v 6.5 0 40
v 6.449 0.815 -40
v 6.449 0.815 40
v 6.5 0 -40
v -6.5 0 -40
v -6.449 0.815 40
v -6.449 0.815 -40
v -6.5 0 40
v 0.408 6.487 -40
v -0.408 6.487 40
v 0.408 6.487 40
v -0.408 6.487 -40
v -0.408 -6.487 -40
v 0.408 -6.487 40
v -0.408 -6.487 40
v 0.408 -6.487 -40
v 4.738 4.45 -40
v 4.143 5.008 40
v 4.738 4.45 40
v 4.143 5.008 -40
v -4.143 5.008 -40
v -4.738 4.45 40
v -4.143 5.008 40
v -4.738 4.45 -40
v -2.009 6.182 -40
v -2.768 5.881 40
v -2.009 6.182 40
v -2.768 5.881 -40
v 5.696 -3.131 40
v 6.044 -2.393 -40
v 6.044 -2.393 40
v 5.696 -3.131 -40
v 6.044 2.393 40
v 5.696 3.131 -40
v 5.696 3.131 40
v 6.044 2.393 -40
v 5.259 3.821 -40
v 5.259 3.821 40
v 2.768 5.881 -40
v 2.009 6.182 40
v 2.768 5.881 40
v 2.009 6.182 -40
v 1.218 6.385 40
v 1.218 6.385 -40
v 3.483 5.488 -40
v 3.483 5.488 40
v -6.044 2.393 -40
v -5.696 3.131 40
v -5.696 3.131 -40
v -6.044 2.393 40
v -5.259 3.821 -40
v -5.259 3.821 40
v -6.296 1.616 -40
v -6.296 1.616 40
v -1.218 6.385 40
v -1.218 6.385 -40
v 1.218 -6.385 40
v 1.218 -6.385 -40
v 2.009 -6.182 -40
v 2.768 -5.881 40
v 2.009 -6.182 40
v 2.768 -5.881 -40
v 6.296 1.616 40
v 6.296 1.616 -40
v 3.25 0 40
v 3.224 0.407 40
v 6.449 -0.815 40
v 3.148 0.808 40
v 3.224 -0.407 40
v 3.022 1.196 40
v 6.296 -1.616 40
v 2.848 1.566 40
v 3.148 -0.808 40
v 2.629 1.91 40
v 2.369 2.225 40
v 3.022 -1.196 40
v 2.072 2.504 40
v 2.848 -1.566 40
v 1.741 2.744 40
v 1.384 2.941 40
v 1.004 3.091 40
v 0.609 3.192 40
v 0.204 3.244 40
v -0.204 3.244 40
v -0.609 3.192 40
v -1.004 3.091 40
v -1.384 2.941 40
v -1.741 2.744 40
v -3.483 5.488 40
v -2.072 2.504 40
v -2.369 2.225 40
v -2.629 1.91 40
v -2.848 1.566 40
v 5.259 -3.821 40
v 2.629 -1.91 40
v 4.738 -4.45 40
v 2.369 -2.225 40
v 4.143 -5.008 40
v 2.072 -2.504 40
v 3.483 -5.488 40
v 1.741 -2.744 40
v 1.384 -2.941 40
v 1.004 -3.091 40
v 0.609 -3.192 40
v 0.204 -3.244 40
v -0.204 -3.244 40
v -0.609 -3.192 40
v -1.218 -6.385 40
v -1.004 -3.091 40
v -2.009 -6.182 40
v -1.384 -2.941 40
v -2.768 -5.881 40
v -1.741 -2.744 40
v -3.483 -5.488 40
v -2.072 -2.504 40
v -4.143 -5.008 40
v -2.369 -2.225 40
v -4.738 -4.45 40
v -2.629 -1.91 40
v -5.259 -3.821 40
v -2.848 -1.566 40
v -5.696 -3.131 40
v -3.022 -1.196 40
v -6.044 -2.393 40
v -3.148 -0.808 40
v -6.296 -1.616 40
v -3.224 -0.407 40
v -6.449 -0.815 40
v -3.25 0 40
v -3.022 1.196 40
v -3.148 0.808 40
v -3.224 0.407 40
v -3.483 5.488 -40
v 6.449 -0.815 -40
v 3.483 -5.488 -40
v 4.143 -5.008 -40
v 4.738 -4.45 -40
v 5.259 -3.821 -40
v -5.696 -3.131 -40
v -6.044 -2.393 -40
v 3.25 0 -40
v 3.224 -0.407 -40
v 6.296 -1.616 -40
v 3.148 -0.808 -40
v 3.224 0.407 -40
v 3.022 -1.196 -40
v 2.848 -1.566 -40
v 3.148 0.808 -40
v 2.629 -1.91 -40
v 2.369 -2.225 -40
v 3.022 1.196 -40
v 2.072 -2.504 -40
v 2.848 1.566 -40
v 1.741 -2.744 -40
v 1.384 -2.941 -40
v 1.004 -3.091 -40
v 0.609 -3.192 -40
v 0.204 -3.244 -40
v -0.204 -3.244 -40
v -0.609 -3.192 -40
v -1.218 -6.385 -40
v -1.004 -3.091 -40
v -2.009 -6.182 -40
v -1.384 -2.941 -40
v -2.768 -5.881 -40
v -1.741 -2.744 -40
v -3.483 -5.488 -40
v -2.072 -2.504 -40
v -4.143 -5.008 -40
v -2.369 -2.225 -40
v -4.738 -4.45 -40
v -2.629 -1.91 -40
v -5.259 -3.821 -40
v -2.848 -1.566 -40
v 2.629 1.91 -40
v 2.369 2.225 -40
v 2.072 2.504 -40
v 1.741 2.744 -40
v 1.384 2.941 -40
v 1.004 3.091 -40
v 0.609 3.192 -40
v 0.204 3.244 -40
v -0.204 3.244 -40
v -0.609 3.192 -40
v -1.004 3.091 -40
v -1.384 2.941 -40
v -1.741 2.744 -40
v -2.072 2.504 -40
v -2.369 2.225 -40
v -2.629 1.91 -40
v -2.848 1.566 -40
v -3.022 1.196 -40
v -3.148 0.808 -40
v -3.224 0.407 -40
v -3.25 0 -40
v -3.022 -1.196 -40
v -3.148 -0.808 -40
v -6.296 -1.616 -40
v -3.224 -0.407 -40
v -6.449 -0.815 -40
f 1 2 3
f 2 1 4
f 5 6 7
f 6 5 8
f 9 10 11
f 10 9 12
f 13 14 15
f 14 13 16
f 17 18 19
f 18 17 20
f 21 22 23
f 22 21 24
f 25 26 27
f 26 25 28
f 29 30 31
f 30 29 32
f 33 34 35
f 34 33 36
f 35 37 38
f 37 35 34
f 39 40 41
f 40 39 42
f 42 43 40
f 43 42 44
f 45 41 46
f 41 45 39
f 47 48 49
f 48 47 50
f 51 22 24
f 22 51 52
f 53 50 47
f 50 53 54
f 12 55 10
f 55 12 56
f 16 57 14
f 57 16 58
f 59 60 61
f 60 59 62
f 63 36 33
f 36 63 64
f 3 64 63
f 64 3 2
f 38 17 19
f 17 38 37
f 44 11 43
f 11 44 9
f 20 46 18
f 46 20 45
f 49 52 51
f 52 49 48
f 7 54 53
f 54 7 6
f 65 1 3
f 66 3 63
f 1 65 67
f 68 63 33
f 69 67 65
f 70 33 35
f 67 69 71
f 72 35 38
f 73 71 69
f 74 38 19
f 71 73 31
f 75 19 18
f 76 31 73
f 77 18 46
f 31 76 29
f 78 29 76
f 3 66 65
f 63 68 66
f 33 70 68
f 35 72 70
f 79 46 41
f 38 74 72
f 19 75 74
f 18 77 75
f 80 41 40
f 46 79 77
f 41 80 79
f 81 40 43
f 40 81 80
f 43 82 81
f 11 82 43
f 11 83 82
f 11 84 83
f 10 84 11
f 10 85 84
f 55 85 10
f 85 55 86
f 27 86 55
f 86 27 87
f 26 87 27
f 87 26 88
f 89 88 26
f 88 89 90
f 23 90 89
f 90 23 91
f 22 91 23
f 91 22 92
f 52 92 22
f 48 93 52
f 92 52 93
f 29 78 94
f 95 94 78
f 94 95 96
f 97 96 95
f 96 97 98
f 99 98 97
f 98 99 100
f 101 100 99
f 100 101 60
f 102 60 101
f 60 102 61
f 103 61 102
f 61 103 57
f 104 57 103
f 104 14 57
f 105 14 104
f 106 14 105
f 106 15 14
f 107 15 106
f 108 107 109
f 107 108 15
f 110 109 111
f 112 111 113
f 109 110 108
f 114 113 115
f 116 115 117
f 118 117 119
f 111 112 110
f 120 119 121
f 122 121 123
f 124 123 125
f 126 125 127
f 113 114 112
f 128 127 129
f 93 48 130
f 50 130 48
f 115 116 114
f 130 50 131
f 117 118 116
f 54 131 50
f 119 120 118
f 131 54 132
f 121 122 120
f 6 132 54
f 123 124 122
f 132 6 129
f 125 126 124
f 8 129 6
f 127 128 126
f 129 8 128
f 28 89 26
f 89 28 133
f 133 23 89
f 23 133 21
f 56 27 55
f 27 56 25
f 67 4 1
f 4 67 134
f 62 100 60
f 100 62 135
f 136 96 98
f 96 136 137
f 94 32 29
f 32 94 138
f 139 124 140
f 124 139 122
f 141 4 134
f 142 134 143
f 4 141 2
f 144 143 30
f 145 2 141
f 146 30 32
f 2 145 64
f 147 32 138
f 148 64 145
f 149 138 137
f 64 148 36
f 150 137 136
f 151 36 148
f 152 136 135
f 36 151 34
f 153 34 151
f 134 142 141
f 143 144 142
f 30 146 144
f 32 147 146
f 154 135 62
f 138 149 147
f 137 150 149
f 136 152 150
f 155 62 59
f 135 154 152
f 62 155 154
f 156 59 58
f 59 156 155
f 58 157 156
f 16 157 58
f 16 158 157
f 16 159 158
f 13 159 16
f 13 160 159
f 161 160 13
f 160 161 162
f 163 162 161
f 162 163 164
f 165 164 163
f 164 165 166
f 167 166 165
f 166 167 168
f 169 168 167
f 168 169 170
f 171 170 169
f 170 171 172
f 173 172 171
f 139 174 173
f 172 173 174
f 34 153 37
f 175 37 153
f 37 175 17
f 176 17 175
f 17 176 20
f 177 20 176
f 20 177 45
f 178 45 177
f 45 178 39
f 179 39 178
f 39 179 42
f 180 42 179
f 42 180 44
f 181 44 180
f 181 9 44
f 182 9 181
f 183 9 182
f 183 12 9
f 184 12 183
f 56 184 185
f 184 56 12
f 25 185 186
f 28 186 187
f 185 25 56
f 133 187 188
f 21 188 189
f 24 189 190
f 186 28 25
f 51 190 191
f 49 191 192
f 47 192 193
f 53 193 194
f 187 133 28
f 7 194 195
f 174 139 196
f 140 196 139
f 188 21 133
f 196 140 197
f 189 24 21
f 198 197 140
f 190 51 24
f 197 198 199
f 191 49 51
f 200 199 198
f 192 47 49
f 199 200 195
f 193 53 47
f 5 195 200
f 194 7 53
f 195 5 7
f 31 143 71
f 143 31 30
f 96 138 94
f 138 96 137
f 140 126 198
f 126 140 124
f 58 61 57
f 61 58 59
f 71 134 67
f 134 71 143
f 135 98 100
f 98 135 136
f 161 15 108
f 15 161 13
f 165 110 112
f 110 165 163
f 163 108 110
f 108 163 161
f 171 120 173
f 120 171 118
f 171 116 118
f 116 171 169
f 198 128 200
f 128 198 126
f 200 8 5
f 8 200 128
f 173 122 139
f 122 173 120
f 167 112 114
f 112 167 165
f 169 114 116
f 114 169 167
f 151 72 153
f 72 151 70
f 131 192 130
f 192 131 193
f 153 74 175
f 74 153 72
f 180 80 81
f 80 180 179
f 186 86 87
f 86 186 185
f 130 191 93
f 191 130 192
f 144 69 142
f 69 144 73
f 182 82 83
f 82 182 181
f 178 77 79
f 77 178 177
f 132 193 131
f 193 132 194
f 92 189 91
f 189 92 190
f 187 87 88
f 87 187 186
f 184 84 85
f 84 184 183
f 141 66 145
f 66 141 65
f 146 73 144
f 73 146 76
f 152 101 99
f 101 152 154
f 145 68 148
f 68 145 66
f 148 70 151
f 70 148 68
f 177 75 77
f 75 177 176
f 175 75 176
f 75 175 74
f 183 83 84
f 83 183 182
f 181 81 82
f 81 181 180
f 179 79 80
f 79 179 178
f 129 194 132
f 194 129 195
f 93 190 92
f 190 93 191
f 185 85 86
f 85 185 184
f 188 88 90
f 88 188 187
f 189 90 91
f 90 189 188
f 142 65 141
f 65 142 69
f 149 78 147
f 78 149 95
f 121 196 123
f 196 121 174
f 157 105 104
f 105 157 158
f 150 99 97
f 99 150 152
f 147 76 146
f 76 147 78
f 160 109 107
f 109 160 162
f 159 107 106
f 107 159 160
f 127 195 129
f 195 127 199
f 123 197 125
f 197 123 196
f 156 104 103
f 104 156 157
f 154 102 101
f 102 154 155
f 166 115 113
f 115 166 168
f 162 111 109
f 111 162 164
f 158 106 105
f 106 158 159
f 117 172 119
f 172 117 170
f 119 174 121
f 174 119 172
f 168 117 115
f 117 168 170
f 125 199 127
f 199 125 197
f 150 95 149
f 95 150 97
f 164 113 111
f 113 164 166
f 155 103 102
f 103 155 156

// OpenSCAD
$fn = 50;


difference() {
	union() {
		translate(v = [0, 0, -40.0000000000]) {
			cylinder(h = 80, r = 6.5000000000);
		}
	}
	union() {
		translate(v = [0, 0, -100.0000000000]) {
			cylinder(h = 200, r = 3.2500000000);
		}
	}
}
